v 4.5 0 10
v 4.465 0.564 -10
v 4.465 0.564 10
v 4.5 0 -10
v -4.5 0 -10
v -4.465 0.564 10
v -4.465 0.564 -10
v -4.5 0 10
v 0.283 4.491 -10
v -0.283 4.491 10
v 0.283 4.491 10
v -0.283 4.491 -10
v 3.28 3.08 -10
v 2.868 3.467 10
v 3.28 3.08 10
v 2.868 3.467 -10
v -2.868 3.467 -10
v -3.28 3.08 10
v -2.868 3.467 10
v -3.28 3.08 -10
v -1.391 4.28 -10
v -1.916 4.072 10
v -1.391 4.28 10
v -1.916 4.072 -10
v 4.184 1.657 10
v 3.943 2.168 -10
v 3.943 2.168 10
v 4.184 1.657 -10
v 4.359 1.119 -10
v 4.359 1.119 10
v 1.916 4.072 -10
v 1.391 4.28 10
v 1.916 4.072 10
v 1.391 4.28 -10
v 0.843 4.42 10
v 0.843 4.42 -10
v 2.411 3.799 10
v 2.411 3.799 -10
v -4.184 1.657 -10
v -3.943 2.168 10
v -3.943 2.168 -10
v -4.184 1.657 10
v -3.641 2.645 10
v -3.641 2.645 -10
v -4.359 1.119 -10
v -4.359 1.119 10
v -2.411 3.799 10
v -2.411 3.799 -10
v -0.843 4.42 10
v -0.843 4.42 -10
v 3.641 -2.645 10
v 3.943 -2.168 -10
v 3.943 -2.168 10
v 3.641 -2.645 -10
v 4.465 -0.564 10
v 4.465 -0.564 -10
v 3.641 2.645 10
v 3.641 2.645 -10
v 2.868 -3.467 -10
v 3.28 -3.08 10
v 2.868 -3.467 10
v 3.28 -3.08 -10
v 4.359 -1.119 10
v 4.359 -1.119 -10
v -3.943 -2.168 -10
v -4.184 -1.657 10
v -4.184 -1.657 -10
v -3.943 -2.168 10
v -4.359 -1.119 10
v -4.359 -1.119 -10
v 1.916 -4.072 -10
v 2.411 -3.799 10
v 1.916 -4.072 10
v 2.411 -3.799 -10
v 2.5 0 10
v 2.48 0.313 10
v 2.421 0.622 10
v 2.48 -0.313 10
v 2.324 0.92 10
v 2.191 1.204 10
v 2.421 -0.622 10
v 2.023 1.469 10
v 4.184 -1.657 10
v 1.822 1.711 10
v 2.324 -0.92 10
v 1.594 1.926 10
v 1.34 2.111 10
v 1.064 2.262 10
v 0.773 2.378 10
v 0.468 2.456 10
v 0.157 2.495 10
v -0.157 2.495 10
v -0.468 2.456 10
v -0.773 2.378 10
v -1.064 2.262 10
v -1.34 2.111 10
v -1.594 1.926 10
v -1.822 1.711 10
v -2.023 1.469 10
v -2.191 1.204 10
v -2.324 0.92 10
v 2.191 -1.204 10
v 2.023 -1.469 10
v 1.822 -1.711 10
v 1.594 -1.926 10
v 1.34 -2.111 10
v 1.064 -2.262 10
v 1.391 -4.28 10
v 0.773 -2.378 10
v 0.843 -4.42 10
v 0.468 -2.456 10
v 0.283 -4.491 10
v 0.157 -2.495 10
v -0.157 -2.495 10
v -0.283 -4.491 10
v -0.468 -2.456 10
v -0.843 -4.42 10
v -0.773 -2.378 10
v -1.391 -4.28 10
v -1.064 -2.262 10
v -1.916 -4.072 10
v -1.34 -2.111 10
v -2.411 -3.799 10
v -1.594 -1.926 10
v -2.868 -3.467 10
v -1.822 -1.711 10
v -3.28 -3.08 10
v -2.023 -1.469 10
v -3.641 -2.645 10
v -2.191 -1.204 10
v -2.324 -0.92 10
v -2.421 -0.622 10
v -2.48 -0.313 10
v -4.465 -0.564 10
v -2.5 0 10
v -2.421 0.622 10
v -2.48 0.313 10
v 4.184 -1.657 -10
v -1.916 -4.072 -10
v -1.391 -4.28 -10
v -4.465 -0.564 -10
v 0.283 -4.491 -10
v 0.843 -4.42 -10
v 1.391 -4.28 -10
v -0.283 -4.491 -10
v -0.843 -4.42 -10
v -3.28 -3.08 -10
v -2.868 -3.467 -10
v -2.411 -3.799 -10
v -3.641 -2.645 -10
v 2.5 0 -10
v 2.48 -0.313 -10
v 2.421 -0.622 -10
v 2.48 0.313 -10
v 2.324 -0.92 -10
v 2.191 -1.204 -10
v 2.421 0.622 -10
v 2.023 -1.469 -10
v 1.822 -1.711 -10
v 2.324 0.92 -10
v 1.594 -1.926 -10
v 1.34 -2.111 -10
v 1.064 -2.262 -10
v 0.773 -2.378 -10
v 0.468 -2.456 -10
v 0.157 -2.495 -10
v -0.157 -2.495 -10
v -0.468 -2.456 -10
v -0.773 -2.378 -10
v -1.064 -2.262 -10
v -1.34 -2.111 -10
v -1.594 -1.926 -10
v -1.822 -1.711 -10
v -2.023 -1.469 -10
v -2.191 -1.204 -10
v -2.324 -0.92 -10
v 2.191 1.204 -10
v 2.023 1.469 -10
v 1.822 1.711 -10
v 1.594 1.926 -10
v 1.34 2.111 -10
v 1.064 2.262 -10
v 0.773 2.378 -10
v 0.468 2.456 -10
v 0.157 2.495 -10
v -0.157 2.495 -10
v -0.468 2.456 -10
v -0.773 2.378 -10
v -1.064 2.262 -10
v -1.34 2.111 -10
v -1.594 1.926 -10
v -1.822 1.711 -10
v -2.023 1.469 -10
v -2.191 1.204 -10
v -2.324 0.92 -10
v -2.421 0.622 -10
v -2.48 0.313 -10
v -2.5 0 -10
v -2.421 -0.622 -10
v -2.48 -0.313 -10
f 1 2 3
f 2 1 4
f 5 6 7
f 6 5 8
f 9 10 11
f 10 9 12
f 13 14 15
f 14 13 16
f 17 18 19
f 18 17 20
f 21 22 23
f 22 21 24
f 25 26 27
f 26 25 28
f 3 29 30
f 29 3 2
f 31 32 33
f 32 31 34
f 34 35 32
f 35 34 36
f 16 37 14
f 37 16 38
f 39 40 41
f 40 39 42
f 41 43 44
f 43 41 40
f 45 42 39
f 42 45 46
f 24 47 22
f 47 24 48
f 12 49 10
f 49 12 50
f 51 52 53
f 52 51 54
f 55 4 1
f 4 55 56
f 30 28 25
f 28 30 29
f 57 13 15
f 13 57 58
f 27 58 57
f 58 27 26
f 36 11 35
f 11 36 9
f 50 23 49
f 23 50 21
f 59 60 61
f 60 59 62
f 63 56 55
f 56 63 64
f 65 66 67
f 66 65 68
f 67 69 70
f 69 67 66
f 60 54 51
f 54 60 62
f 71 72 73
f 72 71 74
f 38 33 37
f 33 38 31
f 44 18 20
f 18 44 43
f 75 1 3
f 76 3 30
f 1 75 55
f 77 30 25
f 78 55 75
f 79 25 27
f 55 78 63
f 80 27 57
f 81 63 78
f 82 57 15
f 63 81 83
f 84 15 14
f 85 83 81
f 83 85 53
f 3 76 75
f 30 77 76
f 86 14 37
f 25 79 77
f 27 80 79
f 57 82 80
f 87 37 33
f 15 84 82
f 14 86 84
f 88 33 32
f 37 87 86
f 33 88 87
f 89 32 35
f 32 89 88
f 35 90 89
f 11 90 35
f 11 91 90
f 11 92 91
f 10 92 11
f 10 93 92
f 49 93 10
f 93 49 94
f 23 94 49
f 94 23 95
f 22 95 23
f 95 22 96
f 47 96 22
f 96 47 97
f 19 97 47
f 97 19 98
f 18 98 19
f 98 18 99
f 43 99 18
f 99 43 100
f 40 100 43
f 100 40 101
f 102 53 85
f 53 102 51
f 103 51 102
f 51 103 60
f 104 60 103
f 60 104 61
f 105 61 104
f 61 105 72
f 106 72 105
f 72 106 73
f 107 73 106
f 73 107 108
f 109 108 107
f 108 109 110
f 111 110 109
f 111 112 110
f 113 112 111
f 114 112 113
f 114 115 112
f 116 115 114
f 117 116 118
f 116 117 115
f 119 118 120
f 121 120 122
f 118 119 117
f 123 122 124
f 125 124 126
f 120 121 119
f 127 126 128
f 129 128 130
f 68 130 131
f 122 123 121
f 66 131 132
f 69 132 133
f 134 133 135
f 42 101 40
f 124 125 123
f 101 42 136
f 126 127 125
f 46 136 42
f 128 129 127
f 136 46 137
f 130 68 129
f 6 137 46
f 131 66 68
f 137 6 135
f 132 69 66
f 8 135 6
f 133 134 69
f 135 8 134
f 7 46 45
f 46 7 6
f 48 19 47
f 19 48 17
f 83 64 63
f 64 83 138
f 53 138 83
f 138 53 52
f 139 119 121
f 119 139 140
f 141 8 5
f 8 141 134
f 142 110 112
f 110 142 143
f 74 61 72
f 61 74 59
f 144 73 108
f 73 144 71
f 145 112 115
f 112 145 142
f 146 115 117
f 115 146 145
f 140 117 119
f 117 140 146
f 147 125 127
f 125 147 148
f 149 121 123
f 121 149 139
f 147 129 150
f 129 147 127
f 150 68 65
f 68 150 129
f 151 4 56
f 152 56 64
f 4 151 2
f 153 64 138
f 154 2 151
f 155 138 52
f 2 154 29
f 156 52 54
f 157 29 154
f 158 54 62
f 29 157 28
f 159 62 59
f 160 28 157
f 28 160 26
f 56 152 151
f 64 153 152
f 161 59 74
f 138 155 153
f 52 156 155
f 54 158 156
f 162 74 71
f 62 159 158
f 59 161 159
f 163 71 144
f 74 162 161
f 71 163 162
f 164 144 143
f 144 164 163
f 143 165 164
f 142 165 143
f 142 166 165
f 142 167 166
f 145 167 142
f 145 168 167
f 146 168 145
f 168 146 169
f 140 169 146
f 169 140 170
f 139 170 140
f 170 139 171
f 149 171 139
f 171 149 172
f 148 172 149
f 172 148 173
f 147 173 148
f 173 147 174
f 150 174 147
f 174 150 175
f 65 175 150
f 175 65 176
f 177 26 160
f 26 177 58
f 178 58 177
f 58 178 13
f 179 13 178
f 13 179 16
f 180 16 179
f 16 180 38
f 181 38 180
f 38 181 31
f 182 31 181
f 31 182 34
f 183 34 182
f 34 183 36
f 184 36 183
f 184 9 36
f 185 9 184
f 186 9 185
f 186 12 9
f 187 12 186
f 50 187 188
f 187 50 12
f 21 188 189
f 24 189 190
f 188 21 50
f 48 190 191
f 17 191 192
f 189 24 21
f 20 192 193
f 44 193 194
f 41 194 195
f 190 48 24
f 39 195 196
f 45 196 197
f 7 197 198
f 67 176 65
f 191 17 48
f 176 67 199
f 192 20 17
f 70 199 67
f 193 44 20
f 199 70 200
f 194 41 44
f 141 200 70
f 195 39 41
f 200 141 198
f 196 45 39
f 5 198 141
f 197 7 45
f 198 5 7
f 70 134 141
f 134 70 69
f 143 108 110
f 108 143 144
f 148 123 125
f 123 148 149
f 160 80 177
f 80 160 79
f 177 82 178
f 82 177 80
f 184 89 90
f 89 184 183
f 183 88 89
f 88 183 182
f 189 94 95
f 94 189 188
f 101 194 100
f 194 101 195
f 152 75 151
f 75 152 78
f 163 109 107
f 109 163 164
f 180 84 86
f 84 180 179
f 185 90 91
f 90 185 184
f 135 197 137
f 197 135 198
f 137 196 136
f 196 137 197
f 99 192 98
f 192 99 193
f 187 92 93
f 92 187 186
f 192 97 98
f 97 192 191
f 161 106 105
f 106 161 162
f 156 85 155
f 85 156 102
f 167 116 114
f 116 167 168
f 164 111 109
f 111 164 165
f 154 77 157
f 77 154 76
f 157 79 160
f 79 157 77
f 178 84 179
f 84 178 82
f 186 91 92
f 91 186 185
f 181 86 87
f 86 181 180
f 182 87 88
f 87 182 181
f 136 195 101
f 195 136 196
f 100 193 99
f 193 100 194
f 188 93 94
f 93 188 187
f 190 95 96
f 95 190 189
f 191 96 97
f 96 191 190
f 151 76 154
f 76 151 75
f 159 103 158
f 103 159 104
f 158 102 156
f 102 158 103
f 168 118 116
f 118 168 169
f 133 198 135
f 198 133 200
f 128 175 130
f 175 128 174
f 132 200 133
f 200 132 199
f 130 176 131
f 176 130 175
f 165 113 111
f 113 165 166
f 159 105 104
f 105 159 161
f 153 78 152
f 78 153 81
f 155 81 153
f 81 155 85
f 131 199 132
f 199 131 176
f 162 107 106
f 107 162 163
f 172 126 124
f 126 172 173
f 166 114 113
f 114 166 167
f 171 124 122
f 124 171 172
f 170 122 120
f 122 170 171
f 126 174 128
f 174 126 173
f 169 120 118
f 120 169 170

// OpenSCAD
$fn = 50;


difference() {
	union() {
		translate(v = [0, 0, -10.0000000000]) {
			cylinder(h = 20, r = 4.5000000000);
		}
	}
	union() {
		translate(v = [0, 0, -100.0000000000]) {
			cylinder(h = 200, r = 2.5000000000);
		}
	}
}
